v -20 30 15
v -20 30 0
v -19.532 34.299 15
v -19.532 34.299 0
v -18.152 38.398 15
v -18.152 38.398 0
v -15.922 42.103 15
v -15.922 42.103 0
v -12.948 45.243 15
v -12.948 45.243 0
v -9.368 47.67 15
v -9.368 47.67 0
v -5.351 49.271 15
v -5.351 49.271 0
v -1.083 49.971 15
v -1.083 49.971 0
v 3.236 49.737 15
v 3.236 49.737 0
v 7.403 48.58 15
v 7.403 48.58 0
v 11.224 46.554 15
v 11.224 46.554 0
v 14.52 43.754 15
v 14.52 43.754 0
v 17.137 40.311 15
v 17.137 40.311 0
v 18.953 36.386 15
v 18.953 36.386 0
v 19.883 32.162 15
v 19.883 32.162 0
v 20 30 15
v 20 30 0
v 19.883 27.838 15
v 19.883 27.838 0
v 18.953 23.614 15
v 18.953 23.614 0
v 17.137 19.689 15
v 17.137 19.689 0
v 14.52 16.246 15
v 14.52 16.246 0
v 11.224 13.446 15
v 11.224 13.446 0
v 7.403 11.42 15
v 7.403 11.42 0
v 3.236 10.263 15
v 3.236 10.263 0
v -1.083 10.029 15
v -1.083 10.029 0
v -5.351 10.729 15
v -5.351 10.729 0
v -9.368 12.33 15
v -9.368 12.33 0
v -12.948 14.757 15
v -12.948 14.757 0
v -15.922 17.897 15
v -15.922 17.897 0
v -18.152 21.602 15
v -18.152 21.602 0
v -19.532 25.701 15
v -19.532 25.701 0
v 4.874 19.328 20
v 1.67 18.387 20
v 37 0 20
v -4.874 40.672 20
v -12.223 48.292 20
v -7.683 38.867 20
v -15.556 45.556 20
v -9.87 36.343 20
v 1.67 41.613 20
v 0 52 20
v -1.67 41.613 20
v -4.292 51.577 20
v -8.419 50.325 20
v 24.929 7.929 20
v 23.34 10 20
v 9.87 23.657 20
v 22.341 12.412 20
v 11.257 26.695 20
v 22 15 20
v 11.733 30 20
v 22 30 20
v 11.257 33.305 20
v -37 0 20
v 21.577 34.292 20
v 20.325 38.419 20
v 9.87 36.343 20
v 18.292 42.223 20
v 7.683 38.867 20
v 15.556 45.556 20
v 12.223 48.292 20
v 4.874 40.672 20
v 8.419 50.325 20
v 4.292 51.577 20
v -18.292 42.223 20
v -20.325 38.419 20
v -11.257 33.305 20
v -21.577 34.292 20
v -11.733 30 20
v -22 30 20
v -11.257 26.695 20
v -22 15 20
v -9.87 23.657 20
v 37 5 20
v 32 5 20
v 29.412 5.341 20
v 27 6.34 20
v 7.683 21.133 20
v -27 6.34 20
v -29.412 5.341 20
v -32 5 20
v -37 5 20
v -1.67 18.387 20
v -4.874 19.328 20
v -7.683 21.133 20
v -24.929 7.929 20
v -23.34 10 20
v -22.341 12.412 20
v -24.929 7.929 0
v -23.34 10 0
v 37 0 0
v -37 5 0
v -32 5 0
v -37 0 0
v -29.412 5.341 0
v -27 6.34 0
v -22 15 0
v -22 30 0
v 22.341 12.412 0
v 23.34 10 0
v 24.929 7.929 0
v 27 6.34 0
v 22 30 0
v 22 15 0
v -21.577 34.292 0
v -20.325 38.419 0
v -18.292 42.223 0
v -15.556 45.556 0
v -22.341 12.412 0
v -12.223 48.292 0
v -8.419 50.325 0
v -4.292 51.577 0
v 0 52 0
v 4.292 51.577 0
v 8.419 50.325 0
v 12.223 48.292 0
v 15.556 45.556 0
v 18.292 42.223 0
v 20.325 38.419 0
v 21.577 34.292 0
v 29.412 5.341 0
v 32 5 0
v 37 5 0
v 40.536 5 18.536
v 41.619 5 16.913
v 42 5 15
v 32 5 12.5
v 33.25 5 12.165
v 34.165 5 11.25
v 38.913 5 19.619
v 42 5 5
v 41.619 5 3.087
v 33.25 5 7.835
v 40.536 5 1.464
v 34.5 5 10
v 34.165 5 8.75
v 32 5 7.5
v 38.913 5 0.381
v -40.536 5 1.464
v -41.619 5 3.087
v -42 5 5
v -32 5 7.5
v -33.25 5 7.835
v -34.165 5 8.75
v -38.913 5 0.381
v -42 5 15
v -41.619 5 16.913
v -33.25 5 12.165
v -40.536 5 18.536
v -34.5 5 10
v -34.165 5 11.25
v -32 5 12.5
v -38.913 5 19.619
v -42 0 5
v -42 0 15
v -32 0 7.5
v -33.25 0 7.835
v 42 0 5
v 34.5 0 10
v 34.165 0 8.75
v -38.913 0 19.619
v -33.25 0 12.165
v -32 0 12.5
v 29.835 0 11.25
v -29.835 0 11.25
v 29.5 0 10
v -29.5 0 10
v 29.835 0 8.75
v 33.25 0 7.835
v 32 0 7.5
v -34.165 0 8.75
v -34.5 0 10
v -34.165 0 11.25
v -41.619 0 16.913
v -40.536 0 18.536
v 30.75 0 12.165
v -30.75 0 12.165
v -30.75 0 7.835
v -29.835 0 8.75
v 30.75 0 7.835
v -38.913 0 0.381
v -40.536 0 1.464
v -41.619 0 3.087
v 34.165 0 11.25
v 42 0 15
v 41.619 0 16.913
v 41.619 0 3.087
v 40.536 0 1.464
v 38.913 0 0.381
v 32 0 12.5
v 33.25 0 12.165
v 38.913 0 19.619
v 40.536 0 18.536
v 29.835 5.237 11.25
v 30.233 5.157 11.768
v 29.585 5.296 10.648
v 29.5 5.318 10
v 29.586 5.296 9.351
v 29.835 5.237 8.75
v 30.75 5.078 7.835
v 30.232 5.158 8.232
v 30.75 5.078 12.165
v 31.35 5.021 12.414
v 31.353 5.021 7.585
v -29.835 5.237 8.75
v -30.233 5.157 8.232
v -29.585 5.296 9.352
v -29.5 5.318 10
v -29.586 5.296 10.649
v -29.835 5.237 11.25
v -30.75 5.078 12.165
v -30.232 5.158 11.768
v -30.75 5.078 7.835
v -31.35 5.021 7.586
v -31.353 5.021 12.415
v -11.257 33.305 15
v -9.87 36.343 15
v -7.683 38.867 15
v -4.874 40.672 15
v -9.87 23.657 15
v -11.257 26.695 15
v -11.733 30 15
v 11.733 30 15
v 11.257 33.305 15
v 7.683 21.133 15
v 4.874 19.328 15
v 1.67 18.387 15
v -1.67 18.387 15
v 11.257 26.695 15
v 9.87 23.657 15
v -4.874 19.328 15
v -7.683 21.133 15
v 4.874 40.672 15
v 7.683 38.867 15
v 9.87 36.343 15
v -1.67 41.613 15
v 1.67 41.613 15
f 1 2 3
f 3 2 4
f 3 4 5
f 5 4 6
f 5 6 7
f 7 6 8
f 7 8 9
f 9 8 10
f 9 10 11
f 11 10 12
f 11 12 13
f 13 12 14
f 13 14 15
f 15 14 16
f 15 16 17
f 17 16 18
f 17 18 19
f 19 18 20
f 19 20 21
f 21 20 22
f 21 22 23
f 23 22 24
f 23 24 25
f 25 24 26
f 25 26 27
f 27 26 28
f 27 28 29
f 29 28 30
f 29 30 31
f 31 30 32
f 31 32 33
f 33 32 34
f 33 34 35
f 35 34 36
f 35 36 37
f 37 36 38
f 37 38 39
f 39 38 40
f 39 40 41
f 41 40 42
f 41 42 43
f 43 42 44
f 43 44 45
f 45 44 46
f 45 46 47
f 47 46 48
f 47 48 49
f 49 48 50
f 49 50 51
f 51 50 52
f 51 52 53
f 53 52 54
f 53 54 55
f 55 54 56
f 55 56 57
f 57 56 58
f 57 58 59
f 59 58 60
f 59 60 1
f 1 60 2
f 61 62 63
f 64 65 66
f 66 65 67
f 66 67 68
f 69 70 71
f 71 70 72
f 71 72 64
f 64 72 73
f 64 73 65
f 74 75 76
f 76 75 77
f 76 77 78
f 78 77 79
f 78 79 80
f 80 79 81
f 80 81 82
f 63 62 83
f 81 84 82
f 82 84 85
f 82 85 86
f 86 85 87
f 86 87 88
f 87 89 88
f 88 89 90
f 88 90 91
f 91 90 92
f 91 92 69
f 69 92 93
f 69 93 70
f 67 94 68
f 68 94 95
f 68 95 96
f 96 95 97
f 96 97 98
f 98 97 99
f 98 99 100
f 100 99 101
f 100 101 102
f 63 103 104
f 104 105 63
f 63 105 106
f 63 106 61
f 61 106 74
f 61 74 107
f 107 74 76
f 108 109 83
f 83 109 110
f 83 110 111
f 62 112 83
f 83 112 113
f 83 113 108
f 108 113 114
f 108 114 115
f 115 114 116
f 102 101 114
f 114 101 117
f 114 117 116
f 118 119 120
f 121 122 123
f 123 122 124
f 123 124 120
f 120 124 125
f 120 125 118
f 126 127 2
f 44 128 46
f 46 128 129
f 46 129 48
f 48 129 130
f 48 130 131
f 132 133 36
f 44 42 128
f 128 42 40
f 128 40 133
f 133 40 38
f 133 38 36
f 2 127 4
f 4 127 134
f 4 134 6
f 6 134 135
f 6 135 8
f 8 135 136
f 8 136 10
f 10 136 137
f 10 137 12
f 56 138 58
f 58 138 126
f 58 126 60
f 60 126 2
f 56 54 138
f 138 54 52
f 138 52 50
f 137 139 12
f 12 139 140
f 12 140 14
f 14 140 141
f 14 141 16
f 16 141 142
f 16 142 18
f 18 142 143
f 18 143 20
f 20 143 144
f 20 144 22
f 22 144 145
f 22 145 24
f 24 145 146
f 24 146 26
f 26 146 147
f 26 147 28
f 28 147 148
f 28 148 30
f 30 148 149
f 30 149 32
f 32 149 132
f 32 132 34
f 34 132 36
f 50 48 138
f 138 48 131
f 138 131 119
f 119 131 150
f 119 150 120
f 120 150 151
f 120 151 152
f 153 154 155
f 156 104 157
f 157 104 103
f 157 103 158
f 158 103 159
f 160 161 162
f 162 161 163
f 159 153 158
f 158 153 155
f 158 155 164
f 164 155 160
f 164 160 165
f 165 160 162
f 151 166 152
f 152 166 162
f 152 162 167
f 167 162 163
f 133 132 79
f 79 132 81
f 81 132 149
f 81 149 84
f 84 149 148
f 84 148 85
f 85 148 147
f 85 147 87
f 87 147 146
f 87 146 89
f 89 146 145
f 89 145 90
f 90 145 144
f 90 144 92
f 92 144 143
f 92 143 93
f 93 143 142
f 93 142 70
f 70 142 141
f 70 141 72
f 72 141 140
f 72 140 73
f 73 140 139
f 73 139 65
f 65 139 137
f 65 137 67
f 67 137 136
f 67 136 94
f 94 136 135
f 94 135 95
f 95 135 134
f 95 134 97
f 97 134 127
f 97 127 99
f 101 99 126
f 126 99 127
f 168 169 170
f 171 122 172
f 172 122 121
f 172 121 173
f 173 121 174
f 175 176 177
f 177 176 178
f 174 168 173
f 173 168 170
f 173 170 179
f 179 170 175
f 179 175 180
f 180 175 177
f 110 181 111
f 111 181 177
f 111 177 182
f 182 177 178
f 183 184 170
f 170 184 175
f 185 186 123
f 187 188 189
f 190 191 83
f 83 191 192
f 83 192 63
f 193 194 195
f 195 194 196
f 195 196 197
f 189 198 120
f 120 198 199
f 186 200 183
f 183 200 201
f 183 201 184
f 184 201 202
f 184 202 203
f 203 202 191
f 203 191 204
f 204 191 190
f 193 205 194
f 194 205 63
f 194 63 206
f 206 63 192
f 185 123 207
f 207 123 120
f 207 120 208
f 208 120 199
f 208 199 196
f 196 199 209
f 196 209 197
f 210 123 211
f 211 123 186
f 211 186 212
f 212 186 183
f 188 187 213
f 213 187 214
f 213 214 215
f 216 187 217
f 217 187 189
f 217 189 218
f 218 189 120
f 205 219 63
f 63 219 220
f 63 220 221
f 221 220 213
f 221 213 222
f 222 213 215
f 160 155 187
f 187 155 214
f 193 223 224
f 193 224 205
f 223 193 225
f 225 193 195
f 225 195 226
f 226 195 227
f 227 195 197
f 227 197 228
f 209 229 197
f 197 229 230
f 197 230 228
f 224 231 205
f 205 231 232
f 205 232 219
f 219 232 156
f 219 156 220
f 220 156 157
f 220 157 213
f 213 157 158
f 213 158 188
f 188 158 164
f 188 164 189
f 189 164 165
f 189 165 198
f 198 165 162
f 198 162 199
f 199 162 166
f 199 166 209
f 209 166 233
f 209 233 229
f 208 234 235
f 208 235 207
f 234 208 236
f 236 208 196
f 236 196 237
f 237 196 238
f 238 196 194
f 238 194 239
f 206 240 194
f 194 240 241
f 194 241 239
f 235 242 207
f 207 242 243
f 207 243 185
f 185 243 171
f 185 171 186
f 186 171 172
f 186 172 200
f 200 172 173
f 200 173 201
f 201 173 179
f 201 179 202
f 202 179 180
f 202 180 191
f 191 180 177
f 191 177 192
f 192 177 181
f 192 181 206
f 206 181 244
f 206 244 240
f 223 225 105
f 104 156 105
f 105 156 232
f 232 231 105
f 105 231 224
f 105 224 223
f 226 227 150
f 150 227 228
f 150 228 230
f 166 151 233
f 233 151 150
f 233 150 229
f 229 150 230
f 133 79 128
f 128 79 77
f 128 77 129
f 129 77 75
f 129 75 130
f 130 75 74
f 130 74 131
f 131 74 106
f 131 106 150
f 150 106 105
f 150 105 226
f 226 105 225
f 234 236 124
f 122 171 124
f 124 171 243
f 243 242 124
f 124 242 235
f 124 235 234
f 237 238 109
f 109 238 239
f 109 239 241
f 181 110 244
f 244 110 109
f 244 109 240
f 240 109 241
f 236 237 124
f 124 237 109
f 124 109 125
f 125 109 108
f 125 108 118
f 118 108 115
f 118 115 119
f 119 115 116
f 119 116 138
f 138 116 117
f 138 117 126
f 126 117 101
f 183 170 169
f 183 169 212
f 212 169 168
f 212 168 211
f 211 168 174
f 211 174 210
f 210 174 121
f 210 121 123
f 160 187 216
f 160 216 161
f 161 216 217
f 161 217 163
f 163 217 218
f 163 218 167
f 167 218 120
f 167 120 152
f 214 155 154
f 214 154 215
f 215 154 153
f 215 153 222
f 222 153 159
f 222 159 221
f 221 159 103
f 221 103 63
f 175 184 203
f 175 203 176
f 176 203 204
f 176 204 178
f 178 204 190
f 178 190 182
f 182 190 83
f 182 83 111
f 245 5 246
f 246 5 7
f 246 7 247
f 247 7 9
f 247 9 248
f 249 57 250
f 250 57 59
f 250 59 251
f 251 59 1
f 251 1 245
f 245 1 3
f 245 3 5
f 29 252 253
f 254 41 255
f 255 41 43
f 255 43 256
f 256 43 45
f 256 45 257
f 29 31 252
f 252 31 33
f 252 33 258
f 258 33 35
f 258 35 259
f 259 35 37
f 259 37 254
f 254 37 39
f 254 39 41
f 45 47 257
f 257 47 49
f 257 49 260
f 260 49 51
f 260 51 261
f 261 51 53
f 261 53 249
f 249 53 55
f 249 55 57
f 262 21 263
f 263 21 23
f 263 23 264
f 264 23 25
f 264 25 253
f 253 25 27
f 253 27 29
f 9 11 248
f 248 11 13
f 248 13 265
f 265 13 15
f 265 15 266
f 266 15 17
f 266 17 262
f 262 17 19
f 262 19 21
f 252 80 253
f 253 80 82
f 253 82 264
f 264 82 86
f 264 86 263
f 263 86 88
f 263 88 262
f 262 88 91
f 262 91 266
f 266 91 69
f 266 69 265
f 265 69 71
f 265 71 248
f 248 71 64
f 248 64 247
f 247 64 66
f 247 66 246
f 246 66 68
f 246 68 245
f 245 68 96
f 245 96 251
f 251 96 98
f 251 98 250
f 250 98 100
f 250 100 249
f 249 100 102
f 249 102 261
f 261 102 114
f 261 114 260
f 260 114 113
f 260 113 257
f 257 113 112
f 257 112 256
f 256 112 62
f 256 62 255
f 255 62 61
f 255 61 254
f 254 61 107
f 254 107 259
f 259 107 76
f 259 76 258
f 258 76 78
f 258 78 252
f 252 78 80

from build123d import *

# Parameters (mm, degrees)
ESQUISSE1_R             = 20
BOSS_EXTRU_1_DEPTH      = 20
ESQUISSE2_R             = 2.5
ENL_V_MAT_EXTRU_1_DEPTH = 15
CONG_1_R                = 10
CONG_2_R                = 5
BOSS_EXTRU_2_START      = -5
ESQUISSE3_R             = 20
ESQUISSE3_R_2           = 11.732748591
BOSS_EXTRU_2_DEPTH      = 5


with BuildPart() as part:
    # Esquisse1 → Boss.-Extru.1 (new body)
    with BuildSketch(Plane.XY):
        with BuildLine():
            Line((42, 0), (-42, 0))
            Line((-42, 0), (-42, 5))
            Line((-42, 5), (-22, 5))
            Line((-22, 5), (-22, 30))
            ThreePointArc((-22, 30), (0, 52), (22, 30))
            Line((22, 30), (22, 5))
            Line((22, 5), (42, 5))
            Line((42, 5), (42, 0))
        make_face()
        with Locations((0, 30)):
            Circle(ESQUISSE1_R, mode=Mode.SUBTRACT)
    extrude(amount=BOSS_EXTRU_1_DEPTH)

    # Esquisse2 → Enlèv. mat.-Extru.1 (cut)
    with BuildSketch(Plane(origin=(0, 5, 0), x_dir=(1, 0, 0), z_dir=(0, 1, 0))):
        with Locations(Location((-32, -10, 0), (0, 0, 180))):
            Circle(ESQUISSE2_R)
        with Locations(Location((32, -10, 0), (0, 0, 180))):
            Circle(ESQUISSE2_R)
    extrude(amount=-ENL_V_MAT_EXTRU_1_DEPTH, mode=Mode.SUBTRACT)

    # Congé1
    # the kernel refuses this fillet: 10 mm, written as the material it adds along each edge
    with BuildSketch(Plane(origin=(-22, 5, 0), x_dir=(-1, 0, 0), z_dir=(0, 0, 1))) as cong_1_piece_1_section:
        with BuildLine():
            CenterArc((CONG_1_R, -CONG_1_R), CONG_1_R, 90, 90)
            Line((0, -CONG_1_R), (0, 0))
            Line((0, 0), (CONG_1_R, 0))
        make_face()
    cong_1_piece_1 = extrude(amount=20, mode=Mode.PRIVATE)
    cong_1_piece_1 = cong_1_piece_1 - Plane(origin=(-32, 7.276430514, 10), x_dir=(-1, 0, 0), z_dir=(0, 1, 0)) * Cylinder(2.5, 81, mode=Mode.PRIVATE)
    add(cong_1_piece_1)
    with BuildSketch(Plane(origin=(22, 5, 0), x_dir=(1, 0, 0), z_dir=(0, 0, 1))) as cong_1_piece_2_section:
        with BuildLine():
            CenterArc((CONG_1_R, CONG_1_R), CONG_1_R, 180, 90)
            Line((0, CONG_1_R), (0, 0))
            Line((0, 0), (CONG_1_R, 0))
        make_face()
    cong_1_piece_2 = extrude(amount=20, mode=Mode.PRIVATE)
    cong_1_piece_2 = cong_1_piece_2 - Plane(origin=(32, 7.276430465, 10), x_dir=(-1, 0, 0), z_dir=(0, 1, 0)) * Cylinder(2.5, 80, mode=Mode.PRIVATE)
    add(cong_1_piece_2)

    # Congé2
    cong_2_edges = [part.edges().sort_by_distance(p)[0] for p in [
        (-42, 2.5, 20),
        (42, 2.5, 20),
        (42, 2.5, 0),
        (-42, 2.5, 0),
    ]]
    fillet(cong_2_edges, radius=CONG_2_R)

    # Esquisse3 → Boss.-Extru.2 (add)
    with BuildSketch(Plane.XY.offset(20).offset(BOSS_EXTRU_2_START)):
        with Locations((0, 30)):
            Circle(ESQUISSE3_R)
        with Locations((0, 30)):
            Circle(ESQUISSE3_R_2, mode=Mode.SUBTRACT)
    extrude(amount=BOSS_EXTRU_2_DEPTH)


solid = part.part
